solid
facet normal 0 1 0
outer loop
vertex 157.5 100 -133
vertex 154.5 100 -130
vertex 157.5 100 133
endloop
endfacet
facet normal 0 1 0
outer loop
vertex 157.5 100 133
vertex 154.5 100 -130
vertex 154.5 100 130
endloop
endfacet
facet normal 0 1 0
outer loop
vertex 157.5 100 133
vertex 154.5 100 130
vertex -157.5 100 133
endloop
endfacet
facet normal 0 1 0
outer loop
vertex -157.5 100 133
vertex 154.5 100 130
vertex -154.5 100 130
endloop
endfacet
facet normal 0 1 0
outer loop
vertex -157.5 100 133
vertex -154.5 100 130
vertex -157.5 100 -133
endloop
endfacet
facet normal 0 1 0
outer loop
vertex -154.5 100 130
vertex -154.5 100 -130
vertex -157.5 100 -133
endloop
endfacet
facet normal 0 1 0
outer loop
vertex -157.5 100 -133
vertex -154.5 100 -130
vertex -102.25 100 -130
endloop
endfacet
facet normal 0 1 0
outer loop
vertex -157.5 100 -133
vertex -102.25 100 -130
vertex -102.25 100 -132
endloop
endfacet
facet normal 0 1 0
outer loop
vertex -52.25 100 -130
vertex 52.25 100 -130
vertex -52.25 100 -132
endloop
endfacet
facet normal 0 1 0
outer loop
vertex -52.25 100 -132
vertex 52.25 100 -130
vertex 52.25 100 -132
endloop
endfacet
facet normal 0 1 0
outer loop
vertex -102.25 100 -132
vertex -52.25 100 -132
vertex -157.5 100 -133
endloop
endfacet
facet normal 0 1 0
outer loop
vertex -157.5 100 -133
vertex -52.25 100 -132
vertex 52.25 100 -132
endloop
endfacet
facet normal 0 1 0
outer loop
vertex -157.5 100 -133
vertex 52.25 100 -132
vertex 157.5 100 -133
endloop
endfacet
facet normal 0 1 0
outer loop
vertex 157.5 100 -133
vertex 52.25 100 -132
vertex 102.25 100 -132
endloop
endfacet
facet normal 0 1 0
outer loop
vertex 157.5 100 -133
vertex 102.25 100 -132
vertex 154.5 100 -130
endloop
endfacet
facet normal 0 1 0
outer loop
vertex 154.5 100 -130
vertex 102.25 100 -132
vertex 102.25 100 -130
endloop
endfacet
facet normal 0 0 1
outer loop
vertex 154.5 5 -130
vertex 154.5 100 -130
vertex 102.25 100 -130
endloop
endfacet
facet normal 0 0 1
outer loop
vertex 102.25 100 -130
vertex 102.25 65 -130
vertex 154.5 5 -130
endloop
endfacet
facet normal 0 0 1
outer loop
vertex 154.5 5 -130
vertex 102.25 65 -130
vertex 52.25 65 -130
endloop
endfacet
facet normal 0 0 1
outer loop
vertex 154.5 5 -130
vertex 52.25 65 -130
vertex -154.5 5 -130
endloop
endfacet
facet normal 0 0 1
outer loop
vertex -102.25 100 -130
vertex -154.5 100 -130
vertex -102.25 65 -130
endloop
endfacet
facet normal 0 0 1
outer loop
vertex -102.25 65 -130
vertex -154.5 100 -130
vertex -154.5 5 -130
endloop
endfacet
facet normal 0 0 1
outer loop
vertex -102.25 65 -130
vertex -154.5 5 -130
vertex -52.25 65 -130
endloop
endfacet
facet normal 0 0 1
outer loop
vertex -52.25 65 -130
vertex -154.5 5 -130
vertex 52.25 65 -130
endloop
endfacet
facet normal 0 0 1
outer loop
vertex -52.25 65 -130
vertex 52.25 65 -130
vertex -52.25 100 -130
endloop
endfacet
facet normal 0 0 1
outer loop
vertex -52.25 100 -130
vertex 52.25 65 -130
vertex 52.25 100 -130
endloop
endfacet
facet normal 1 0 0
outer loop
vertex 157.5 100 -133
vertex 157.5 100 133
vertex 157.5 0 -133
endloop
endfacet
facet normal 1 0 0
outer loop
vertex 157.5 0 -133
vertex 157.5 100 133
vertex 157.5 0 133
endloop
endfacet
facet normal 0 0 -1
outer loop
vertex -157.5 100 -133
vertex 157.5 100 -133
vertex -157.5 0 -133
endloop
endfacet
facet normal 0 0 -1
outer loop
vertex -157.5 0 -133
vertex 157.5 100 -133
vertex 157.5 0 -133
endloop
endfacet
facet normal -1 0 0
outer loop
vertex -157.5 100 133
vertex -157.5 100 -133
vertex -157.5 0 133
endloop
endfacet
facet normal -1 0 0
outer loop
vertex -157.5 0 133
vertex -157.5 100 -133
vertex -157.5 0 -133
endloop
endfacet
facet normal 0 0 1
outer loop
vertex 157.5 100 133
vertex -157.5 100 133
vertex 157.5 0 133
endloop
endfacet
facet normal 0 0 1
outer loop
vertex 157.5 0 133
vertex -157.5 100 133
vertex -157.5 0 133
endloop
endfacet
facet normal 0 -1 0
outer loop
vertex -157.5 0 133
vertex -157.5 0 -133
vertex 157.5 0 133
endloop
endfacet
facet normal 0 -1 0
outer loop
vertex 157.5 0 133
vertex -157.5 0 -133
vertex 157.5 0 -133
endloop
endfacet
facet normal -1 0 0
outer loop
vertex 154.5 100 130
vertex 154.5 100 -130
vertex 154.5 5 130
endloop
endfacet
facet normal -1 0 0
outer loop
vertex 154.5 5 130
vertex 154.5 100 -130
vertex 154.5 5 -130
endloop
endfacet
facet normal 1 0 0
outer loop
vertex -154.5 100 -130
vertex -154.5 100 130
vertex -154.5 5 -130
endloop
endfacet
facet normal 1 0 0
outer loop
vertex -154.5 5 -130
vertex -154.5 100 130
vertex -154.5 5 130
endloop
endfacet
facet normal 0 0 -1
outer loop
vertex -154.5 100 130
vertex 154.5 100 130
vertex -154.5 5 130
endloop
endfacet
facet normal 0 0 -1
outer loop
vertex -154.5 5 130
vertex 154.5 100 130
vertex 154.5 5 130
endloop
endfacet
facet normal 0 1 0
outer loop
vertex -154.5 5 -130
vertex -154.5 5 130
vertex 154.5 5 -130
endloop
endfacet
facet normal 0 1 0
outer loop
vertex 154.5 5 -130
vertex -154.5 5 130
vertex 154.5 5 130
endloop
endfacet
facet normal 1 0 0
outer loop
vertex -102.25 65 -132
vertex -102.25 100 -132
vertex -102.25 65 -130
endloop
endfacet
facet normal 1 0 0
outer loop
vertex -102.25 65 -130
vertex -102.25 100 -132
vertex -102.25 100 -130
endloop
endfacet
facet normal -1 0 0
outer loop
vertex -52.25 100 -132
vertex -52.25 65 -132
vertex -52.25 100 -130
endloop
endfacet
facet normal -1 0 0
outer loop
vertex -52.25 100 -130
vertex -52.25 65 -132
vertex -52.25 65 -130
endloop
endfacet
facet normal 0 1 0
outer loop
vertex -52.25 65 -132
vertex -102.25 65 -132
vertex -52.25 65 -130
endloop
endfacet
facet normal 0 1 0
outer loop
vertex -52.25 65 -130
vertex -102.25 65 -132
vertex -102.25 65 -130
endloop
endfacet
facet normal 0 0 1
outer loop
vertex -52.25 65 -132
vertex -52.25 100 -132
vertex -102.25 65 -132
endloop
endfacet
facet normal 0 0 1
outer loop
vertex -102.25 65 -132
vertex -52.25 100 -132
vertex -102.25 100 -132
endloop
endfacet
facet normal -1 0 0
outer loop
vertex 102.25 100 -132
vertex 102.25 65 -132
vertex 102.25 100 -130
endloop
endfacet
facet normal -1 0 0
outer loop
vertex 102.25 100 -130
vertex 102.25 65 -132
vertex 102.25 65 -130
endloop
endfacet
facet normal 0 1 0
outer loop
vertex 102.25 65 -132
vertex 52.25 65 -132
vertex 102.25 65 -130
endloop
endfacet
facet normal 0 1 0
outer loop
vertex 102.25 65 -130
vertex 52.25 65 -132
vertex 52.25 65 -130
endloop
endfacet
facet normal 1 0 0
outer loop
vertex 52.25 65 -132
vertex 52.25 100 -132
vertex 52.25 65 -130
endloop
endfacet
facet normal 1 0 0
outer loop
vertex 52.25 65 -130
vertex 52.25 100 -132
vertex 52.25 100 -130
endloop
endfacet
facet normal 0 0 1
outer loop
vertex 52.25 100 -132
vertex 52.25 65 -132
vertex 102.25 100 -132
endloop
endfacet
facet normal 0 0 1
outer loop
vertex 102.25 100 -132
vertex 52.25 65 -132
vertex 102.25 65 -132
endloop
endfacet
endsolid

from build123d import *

# Parameters (mm, degrees)
SKETCH1_W           = 315
SKETCH1_H           = 266
BOSS_EXTRUDE1_DEPTH = 100
SHELL1_START        = -154.5
SHELL1_OUTLINE_W    = 92
SHELL1_OUTLINE_H    = 260
SHELL1_DEPTH        = 309
SKETCH2_W           = 309
SKETCH2_H           = 260
CUT_EXTRUDE1_DEPTH  = 3
SKETCH5_W           = 50
SKETCH5_H           = 35
CUT_EXTRUDE3_DEPTH  = 2


# Read off the part's stored shape, not the designer's step: Shell1
with BuildPart() as part:
    # Sketch1 → Boss-Extrude1 (new body)
    with BuildSketch(Plane(origin=(0, 0, 0), x_dir=(1, 0, 0), z_dir=(0, 1, 0))):
        Rectangle(SKETCH1_W, SKETCH1_H)
    extrude(amount=BOSS_EXTRUDE1_DEPTH)

    # Shell1 outline → Shell1 (cut)
    with BuildSketch(Plane.YZ.offset(SHELL1_START)):
        with Locations((51, 0)):
            Rectangle(SHELL1_OUTLINE_W, SHELL1_OUTLINE_H)
    extrude(amount=SHELL1_DEPTH, mode=Mode.SUBTRACT)

    # Sketch2 → Cut-Extrude1 (cut)
    with BuildSketch(Plane(origin=(0, 100, 0), x_dir=(1, 0, 0), z_dir=(0, 1, 0))):
        Rectangle(SKETCH2_W, SKETCH2_H)
    extrude(amount=-CUT_EXTRUDE1_DEPTH, mode=Mode.SUBTRACT)

    # Sketch5 → Cut-Extrude3 (cut)
    with BuildSketch(Plane.XY.offset(-130)):
        with Locations((-77.25, 82.5)):
            Rectangle(SKETCH5_W, SKETCH5_H)
    cut_extrude3 = extrude(amount=-CUT_EXTRUDE3_DEPTH, mode=Mode.SUBTRACT)

    # Mirror1: Cut-Extrude3 across plane
    add(cut_extrude3.mirror(Plane(origin=(0, 0, 0), x_dir=(0, 0, 1), z_dir=(1, 0, 0))), mode=Mode.SUBTRACT)


solid = part.part
